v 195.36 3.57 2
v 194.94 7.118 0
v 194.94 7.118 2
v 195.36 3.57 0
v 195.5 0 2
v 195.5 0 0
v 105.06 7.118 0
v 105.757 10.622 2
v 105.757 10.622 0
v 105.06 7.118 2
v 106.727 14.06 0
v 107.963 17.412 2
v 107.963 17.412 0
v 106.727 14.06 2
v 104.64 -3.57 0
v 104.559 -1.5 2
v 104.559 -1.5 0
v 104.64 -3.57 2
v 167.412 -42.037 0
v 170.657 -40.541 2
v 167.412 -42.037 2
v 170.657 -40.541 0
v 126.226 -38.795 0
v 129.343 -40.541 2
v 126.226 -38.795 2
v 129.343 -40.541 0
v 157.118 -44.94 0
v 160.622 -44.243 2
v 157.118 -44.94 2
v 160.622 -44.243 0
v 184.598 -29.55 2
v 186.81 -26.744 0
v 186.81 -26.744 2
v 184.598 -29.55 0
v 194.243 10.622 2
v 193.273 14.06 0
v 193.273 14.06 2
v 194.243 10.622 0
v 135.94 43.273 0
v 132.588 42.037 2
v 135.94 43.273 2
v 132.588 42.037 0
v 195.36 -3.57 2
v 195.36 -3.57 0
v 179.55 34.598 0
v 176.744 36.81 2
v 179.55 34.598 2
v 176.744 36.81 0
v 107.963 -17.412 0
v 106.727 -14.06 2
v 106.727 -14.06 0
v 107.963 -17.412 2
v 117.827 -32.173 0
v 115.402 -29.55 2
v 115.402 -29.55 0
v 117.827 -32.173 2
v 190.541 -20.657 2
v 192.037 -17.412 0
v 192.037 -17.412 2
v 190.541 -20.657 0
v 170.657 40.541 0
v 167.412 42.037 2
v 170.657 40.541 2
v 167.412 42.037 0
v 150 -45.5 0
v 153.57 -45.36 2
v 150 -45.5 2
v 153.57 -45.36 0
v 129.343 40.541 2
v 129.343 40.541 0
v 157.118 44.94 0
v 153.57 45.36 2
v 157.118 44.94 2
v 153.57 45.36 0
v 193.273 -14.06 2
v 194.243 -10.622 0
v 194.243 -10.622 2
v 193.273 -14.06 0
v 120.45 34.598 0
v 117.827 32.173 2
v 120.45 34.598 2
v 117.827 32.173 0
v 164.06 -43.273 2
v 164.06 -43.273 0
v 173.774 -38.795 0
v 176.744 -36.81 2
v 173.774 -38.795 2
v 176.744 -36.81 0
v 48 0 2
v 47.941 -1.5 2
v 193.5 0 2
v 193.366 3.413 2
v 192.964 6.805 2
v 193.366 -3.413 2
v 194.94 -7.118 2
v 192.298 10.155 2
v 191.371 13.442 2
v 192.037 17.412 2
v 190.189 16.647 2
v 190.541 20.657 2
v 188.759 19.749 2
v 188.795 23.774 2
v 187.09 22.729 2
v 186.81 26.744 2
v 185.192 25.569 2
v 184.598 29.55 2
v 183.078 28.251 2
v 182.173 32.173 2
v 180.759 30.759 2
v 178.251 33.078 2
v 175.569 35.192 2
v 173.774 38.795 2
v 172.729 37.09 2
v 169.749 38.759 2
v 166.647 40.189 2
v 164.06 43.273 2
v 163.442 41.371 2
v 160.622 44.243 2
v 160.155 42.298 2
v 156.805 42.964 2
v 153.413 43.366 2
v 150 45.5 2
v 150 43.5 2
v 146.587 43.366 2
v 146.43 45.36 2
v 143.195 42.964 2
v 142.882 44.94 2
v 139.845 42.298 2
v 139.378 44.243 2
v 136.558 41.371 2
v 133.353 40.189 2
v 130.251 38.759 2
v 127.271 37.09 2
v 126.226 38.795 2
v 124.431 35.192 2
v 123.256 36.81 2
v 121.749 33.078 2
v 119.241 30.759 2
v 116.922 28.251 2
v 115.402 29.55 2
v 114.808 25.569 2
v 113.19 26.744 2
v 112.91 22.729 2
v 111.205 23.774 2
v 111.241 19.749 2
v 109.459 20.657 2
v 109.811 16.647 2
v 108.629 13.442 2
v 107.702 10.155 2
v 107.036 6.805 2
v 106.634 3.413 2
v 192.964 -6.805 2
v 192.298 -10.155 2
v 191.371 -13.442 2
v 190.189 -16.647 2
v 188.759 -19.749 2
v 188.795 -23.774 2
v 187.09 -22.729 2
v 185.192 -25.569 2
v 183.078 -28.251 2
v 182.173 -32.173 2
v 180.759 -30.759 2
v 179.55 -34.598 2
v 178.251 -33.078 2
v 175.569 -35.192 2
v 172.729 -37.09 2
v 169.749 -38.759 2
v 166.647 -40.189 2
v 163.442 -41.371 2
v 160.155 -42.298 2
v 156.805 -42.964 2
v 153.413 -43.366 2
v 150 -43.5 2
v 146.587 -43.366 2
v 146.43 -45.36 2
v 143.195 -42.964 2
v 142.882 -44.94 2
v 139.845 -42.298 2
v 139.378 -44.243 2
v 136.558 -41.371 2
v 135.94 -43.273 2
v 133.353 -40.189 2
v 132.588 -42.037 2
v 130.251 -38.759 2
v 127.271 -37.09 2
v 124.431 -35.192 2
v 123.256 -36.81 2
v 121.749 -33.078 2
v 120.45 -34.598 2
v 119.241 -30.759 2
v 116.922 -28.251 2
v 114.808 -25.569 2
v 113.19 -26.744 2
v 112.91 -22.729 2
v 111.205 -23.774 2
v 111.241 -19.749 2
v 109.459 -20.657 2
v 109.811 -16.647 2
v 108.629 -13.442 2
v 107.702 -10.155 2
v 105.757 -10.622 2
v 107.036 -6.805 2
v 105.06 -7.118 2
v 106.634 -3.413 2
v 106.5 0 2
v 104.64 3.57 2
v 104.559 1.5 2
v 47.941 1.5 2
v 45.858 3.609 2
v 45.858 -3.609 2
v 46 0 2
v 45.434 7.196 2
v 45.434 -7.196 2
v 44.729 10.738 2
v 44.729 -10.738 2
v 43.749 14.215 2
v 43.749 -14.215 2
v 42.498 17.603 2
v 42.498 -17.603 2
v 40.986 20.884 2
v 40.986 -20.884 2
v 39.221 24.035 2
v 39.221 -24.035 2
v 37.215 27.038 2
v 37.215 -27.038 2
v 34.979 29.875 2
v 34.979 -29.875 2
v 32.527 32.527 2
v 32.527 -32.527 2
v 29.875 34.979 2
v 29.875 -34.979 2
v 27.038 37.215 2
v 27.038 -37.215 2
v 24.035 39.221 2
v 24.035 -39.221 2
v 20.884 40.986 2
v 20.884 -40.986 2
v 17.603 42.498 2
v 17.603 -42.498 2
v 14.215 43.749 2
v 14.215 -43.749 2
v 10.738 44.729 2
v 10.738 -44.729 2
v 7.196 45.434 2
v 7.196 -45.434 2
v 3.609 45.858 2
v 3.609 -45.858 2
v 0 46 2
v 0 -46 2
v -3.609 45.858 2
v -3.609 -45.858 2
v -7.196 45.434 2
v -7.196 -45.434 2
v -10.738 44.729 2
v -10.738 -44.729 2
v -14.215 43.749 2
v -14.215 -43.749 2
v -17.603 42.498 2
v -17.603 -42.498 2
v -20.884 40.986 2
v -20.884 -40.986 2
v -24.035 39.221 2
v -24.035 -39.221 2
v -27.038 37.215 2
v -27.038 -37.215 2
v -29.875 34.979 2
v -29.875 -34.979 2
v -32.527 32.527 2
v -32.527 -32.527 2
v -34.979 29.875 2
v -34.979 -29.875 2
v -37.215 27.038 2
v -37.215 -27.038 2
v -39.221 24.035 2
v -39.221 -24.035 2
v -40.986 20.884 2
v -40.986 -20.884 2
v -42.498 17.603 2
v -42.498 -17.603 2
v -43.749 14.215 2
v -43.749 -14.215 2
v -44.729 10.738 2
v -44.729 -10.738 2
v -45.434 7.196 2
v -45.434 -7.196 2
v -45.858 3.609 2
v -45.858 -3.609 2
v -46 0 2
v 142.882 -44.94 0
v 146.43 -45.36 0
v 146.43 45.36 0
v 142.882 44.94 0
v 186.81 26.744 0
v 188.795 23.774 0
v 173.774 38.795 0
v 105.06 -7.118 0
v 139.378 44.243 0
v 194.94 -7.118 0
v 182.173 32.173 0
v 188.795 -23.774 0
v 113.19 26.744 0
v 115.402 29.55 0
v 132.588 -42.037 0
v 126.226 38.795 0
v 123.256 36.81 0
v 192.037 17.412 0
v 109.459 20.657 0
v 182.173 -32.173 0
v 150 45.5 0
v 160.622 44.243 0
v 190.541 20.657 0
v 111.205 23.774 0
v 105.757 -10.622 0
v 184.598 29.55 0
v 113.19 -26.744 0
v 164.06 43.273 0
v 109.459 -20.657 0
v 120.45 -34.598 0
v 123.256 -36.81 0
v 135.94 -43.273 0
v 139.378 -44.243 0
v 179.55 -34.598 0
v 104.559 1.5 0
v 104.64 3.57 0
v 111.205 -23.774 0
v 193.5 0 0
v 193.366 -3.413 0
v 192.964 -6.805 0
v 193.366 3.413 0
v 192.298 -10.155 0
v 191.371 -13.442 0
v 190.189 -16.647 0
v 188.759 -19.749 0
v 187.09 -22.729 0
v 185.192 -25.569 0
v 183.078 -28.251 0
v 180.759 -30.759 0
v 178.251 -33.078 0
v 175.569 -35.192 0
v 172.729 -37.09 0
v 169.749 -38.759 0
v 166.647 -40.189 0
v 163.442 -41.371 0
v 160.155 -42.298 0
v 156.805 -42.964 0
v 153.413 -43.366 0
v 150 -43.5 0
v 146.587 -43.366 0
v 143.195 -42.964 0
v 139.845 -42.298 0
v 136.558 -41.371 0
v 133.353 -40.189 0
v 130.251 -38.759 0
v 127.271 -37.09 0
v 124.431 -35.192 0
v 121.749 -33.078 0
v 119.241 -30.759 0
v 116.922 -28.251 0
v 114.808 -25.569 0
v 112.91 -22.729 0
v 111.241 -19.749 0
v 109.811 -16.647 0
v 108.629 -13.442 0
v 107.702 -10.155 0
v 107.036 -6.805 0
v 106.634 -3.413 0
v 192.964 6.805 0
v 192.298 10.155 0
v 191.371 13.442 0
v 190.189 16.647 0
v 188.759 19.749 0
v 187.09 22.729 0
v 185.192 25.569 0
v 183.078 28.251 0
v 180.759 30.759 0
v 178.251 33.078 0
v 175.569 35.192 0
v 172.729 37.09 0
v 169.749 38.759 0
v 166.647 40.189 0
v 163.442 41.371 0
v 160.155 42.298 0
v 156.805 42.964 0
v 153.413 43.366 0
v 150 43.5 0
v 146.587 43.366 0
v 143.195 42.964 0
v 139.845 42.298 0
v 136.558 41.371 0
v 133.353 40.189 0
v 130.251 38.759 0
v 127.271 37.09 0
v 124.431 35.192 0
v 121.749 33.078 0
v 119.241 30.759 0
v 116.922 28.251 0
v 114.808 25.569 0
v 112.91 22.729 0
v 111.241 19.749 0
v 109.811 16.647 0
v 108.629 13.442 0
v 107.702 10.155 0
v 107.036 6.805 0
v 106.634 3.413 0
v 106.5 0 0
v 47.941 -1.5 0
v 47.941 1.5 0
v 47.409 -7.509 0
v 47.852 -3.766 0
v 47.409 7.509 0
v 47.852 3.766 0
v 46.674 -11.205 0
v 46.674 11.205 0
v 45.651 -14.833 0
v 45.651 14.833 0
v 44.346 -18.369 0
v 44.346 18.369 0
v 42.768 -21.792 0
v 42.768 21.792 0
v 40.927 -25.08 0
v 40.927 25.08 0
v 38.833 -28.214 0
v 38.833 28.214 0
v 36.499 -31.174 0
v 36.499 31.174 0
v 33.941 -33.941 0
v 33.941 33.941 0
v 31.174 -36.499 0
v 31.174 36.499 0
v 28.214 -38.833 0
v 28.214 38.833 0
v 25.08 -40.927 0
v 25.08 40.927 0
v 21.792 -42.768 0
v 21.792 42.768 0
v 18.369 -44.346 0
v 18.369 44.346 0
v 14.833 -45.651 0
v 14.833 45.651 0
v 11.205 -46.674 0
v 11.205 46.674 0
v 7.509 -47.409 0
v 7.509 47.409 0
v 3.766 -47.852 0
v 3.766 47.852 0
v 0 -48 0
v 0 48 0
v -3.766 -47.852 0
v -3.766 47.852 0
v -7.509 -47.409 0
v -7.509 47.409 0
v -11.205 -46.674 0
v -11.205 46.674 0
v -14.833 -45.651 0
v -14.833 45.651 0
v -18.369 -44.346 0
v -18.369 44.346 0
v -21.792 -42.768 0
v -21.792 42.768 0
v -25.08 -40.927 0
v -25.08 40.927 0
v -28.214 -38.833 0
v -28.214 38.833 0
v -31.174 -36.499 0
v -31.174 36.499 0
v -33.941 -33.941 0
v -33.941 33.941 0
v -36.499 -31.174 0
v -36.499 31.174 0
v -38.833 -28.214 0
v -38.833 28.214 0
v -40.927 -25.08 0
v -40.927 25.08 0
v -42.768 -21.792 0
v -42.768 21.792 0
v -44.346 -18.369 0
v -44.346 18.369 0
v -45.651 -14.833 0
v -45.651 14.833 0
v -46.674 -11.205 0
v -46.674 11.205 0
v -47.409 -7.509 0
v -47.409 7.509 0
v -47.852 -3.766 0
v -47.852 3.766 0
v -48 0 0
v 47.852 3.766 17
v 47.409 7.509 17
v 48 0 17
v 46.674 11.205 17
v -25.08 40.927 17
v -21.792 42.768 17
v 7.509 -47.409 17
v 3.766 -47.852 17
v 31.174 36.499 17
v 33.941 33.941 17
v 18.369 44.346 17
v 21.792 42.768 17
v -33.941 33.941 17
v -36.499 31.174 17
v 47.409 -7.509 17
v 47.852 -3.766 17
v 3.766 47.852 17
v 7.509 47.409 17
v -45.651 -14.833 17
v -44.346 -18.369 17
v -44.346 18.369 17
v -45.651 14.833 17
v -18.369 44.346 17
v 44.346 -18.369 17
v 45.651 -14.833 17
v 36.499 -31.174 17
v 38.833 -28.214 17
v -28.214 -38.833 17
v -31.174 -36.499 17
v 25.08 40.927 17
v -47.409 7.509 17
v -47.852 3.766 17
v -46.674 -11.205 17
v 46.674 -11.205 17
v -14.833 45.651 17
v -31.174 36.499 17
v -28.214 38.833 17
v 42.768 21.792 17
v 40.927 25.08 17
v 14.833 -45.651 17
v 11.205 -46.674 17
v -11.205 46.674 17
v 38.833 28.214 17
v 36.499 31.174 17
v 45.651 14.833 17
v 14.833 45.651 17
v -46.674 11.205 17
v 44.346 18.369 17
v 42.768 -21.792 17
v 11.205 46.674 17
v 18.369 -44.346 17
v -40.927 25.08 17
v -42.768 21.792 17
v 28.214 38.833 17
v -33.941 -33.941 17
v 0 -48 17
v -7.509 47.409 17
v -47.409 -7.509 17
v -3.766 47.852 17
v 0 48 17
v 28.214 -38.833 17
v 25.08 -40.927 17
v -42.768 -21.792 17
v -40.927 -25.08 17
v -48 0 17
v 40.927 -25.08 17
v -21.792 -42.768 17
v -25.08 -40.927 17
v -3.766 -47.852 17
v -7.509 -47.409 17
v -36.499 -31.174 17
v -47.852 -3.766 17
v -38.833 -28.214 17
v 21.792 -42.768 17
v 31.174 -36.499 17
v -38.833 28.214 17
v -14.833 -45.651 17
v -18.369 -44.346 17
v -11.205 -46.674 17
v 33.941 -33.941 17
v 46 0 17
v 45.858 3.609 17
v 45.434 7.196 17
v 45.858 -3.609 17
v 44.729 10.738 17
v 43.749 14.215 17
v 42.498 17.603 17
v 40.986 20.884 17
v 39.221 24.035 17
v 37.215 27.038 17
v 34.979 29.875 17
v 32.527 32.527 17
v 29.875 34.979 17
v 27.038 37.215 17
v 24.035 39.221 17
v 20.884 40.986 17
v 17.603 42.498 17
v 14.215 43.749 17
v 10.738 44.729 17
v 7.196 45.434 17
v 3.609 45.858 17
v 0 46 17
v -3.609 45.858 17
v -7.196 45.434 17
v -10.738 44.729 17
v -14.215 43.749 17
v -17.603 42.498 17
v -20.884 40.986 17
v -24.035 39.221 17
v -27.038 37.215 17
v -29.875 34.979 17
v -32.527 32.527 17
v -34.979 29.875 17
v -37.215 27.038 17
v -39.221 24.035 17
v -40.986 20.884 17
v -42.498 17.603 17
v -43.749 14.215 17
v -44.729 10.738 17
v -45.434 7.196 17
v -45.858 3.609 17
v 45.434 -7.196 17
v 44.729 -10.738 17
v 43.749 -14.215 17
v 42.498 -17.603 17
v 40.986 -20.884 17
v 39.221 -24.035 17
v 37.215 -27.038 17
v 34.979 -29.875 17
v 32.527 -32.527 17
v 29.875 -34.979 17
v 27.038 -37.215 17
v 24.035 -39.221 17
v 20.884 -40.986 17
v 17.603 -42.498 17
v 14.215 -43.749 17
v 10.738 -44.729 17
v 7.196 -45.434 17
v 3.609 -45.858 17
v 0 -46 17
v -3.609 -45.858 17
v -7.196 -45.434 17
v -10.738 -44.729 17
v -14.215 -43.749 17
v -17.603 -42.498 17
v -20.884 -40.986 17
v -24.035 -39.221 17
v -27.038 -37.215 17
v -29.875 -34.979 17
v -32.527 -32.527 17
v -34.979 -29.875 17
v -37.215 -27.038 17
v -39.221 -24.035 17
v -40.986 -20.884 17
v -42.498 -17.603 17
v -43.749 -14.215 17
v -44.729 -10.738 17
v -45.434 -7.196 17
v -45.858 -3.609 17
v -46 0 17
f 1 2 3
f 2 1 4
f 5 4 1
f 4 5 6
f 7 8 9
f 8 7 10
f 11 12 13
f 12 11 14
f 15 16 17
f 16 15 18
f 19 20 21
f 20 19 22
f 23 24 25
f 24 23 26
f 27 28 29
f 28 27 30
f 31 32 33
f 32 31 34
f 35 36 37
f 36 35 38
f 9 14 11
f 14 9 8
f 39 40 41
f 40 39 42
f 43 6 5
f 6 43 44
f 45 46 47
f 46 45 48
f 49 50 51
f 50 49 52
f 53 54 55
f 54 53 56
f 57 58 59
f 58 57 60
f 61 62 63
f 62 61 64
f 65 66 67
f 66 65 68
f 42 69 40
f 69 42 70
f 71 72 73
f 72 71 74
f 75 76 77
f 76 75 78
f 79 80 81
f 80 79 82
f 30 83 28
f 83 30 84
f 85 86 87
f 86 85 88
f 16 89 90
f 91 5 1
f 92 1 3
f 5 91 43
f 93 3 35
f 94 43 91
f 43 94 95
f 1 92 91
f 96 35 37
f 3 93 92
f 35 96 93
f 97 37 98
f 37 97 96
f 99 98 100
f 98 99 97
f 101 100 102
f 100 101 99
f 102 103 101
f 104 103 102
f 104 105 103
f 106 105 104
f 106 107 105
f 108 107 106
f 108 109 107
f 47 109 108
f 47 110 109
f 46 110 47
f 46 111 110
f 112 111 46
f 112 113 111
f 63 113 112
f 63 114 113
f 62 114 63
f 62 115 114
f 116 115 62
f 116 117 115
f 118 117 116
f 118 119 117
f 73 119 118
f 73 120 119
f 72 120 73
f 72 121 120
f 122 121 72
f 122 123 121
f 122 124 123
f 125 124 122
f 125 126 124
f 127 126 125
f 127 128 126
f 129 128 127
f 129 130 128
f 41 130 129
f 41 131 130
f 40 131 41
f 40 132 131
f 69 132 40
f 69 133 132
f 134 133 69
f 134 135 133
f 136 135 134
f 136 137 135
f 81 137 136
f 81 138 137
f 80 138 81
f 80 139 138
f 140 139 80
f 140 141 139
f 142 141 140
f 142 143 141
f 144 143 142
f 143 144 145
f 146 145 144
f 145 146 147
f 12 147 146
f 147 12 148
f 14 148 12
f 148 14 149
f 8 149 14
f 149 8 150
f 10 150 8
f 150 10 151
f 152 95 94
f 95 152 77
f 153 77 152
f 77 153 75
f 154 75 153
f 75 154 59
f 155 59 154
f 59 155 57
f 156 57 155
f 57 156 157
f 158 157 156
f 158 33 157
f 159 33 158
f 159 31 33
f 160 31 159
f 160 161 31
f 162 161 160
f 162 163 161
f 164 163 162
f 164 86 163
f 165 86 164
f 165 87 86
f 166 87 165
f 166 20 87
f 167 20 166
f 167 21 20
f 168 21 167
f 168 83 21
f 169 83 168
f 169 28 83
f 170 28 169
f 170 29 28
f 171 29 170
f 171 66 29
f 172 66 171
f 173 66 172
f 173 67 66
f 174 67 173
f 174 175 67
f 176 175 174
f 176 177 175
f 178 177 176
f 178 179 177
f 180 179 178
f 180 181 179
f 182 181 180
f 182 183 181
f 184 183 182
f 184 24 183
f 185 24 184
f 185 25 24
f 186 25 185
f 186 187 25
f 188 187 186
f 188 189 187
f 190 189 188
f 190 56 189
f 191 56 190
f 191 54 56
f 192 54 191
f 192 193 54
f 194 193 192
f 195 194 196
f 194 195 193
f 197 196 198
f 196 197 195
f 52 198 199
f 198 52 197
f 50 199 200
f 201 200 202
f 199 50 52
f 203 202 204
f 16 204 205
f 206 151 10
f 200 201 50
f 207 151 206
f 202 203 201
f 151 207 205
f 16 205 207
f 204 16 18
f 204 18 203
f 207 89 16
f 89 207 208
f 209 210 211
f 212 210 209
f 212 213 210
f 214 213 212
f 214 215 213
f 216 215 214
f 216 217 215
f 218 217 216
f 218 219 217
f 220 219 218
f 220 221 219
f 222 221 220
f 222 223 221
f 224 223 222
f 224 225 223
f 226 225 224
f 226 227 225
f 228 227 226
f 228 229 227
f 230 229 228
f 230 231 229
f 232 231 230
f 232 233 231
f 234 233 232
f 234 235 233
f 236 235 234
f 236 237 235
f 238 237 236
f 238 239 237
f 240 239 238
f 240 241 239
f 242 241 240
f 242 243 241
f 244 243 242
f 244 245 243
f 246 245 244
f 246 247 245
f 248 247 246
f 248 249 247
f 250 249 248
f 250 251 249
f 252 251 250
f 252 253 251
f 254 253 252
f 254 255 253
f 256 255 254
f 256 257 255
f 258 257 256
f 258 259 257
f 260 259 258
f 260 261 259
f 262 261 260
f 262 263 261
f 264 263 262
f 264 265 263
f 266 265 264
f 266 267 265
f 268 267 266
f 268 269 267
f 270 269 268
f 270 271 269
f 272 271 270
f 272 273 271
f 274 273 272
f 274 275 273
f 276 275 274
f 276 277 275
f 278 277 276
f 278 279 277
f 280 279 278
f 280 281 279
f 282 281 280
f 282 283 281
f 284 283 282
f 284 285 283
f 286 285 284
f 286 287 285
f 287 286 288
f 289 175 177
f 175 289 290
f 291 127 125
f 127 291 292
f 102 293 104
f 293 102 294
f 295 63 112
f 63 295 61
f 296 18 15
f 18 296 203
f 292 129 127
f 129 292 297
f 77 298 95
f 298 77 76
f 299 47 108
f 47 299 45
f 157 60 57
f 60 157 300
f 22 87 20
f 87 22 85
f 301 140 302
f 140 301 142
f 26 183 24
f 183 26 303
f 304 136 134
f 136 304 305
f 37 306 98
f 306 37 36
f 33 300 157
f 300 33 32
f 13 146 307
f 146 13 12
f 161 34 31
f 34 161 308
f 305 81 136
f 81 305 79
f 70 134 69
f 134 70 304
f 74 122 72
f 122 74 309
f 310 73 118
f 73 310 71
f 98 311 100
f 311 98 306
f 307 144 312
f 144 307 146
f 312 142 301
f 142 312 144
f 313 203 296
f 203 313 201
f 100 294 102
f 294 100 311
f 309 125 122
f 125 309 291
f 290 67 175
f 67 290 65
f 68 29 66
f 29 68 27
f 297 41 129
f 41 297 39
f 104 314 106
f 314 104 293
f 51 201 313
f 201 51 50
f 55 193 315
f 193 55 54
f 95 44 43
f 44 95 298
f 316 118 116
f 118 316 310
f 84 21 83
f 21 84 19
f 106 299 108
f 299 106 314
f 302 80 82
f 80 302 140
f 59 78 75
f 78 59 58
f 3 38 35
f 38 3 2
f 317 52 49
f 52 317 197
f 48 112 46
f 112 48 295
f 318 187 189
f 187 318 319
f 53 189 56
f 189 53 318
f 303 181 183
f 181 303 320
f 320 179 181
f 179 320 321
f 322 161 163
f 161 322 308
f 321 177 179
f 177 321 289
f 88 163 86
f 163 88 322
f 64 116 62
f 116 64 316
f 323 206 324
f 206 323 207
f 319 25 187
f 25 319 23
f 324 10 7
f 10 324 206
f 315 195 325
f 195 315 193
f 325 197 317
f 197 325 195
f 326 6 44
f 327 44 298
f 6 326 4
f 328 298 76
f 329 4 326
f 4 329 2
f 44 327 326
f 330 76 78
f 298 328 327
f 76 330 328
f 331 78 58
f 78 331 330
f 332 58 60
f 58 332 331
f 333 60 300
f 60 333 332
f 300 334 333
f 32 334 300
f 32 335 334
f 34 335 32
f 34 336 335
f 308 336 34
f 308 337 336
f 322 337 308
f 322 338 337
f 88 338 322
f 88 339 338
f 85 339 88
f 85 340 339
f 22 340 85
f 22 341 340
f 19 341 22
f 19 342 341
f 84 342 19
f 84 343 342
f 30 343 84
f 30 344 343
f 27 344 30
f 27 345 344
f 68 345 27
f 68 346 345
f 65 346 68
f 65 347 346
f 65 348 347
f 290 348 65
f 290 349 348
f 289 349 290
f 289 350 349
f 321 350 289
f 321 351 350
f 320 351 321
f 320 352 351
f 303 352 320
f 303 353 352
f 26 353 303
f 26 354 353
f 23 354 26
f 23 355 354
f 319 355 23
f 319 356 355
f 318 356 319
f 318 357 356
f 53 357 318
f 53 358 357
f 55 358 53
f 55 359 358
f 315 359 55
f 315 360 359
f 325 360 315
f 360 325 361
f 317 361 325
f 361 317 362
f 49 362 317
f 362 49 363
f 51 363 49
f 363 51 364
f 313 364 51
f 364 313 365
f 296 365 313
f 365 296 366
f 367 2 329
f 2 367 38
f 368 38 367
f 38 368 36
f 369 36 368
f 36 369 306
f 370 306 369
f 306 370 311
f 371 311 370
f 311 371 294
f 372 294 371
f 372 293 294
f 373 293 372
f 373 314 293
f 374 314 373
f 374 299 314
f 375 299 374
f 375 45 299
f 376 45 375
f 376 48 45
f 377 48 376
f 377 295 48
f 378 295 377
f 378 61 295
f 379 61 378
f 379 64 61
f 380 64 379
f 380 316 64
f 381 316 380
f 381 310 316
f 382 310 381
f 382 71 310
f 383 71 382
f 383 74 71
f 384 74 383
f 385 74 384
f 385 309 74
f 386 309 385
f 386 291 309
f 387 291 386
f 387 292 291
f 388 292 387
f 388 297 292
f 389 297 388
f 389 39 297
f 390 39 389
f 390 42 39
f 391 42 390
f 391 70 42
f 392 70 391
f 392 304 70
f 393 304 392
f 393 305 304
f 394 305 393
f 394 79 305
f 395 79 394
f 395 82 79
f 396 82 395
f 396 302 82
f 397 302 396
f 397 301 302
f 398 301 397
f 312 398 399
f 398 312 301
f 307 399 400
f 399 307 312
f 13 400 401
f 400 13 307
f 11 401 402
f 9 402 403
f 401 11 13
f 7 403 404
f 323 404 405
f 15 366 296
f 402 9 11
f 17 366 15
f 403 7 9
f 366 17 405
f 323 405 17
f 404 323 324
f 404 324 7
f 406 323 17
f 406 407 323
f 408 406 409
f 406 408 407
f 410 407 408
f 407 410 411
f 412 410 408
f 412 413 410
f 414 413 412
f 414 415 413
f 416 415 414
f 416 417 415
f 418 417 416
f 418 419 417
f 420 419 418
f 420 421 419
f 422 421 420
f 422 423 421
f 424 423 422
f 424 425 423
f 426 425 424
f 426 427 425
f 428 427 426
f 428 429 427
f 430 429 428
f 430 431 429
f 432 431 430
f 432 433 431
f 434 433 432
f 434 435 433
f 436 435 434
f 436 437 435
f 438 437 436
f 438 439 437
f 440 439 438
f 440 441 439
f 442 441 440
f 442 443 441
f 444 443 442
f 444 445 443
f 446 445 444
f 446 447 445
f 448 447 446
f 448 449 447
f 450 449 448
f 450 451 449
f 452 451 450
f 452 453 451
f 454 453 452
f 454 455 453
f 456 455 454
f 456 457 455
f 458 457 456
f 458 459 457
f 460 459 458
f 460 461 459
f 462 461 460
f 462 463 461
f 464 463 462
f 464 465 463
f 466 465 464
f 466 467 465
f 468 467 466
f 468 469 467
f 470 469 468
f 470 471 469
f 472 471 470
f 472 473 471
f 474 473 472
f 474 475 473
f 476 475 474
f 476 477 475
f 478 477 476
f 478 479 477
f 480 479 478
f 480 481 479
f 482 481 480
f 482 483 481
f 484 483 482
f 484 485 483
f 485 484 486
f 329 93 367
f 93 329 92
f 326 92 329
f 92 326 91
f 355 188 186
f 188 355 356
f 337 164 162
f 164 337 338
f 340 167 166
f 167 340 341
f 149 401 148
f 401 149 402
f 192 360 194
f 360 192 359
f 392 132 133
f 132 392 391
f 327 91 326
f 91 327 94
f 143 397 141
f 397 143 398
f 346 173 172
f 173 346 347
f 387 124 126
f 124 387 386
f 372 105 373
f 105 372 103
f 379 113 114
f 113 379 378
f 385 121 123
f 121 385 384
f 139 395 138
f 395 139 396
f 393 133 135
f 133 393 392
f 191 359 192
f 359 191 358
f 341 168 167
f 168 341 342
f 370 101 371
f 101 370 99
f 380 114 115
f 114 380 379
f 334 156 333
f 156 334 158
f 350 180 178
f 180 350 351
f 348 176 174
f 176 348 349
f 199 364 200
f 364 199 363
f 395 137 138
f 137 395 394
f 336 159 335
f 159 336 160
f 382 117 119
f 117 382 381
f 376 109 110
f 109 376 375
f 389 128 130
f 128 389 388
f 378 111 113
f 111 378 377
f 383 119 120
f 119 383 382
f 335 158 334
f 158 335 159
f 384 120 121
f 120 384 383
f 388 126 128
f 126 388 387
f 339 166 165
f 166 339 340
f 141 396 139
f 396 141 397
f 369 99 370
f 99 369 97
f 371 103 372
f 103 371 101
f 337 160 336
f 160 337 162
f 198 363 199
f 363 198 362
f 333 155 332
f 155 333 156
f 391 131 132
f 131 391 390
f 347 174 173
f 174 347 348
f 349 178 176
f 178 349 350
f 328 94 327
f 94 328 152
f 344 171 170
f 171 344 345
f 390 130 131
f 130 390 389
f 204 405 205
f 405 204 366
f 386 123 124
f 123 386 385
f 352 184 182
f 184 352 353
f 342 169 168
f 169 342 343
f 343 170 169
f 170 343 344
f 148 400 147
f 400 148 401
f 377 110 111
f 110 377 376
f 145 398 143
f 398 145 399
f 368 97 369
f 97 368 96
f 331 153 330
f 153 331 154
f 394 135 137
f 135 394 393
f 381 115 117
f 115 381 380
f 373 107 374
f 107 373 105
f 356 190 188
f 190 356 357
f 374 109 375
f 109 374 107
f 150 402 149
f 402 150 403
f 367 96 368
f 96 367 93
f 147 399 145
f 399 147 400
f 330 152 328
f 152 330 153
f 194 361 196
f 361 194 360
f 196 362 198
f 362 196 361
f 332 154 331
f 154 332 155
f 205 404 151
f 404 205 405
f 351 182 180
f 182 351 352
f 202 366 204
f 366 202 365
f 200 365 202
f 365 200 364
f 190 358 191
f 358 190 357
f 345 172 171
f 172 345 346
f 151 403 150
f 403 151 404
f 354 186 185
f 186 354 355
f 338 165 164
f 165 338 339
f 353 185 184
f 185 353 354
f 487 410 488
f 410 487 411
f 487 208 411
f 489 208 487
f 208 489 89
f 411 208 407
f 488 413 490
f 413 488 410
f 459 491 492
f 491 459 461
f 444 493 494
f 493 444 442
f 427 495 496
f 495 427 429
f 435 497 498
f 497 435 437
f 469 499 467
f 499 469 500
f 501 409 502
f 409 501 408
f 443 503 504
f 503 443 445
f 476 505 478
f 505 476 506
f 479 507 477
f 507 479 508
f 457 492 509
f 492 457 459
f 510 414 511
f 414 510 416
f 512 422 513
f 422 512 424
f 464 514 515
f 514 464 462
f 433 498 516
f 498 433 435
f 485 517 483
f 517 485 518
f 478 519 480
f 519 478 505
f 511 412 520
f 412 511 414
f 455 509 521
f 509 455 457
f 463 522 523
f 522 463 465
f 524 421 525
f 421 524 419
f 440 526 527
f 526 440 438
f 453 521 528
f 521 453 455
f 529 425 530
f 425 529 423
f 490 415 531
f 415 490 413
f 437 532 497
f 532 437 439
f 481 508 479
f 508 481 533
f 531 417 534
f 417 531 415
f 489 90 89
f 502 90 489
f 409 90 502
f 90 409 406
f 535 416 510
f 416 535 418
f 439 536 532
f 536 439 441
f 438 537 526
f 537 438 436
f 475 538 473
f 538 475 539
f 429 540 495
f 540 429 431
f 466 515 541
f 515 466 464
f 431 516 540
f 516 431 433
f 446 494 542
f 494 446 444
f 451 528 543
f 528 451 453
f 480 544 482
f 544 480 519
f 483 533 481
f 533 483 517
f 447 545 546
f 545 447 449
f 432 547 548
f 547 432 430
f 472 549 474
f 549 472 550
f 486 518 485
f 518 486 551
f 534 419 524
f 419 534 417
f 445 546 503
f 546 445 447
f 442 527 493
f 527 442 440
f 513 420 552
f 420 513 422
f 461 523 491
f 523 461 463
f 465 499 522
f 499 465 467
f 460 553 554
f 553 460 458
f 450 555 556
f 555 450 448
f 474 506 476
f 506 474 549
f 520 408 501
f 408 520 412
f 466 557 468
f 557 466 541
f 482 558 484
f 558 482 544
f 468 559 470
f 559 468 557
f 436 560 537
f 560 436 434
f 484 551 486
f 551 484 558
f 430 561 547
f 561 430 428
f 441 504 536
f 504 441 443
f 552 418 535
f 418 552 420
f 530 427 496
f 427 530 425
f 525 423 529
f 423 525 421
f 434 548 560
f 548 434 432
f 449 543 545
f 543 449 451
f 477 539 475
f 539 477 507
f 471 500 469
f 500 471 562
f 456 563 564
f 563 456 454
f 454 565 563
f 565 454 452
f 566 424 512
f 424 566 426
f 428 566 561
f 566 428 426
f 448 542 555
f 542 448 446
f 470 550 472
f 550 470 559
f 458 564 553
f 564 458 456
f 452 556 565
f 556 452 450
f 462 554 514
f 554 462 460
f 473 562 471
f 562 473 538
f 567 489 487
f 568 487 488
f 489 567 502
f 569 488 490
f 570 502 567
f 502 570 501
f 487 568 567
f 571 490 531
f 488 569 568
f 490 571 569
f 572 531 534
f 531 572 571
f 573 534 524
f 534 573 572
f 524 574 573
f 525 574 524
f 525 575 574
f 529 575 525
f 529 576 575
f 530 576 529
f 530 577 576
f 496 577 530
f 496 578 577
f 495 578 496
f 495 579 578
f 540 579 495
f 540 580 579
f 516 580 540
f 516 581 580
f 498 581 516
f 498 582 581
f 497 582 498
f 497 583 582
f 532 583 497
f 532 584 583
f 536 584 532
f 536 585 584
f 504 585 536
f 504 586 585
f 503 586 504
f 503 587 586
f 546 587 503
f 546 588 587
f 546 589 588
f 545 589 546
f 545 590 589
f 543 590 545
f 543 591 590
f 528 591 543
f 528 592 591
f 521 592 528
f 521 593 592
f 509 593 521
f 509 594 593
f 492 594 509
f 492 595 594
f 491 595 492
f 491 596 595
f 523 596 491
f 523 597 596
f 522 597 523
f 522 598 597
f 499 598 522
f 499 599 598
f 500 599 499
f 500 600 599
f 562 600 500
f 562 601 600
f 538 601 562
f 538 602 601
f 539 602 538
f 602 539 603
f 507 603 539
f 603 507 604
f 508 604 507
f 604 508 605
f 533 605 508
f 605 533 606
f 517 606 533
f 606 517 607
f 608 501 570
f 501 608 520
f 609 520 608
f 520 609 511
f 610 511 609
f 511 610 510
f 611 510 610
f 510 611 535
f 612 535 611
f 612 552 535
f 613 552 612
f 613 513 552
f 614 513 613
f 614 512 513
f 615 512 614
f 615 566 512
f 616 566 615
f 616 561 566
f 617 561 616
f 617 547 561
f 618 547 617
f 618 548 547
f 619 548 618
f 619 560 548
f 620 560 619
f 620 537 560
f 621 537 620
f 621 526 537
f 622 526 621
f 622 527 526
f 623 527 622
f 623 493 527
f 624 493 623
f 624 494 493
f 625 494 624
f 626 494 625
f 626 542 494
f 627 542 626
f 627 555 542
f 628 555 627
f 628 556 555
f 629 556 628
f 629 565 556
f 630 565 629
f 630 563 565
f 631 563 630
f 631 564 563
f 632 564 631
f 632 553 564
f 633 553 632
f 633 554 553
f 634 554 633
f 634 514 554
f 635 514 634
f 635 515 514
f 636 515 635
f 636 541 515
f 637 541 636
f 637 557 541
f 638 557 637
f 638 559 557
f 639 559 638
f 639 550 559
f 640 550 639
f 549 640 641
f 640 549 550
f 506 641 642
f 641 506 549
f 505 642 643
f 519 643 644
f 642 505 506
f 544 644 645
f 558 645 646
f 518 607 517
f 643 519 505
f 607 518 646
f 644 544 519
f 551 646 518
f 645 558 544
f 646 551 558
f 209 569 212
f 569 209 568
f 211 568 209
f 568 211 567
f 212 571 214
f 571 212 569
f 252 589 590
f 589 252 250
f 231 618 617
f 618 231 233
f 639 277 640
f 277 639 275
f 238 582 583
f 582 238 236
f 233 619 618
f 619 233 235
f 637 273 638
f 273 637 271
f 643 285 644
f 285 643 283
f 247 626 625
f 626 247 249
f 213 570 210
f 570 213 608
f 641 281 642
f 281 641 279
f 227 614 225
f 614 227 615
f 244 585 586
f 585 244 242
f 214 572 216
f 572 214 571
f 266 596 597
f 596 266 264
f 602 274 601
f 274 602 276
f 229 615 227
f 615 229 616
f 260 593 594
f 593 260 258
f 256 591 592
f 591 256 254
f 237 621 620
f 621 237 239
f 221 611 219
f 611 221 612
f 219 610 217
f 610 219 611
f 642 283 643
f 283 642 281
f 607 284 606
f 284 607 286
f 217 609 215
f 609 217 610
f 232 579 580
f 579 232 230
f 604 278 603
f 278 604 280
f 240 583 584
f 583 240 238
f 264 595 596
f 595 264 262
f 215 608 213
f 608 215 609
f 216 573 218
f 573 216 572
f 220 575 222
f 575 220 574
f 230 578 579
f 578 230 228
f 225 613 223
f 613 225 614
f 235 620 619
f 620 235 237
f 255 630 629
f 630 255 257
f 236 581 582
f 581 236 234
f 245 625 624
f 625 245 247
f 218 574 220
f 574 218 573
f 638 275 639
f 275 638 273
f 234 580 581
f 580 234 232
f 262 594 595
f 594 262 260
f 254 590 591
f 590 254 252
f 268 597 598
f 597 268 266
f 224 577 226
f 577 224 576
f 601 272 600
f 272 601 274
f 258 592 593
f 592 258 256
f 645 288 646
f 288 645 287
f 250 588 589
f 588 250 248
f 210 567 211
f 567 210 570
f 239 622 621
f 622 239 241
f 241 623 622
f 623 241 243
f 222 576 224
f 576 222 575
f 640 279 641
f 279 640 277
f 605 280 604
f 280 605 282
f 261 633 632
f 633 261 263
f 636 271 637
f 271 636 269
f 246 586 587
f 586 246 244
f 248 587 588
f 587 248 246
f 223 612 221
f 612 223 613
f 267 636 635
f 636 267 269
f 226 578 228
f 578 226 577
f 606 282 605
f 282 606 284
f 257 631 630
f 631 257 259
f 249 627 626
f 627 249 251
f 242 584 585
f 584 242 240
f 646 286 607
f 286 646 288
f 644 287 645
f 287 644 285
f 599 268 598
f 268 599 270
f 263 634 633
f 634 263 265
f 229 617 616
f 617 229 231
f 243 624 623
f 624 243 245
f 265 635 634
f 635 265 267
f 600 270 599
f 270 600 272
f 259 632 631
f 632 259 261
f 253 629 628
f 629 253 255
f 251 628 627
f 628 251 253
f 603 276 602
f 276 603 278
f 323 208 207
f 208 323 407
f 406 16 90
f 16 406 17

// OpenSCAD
border              = 2.0;
coverInnerDiameter  = 92.0;
coverOuterDiameter  = coverInnerDiameter + border * 2;
coverHeight         = 15.0;

ringInnerDiameter   = 87.0;
ringOuterDiameter   = ringInnerDiameter + border * 2;
ringHeight          = 2.0;

coverRingDistance   = 150;
coverRingWidth      = 3.0;


manifoldCorrection  = 0.01;
manifoldCorrection2 = manifoldCorrection * 2;
$fn                 = 80;



cover();



module cover()
{
    // Cover
    cylinder(d = coverOuterDiameter, h = border);
    translate( [0, 0, border] )
        donut(coverOuterDiameter, coverInnerDiameter, coverHeight);
        
    // Ring
    translate( [coverRingDistance, 0, 0] )
        donut(ringOuterDiameter, ringInnerDiameter, ringHeight);
        
    // Joiner
    translate( [coverOuterDiameter/2 - 0.2, -coverRingWidth/2, 0] )
        cube( [coverRingDistance - (coverOuterDiameter/2 + ringOuterDiameter/2) + 1.0, coverRingWidth, ringHeight] );
}





module donut(outerDiameter, innerDiameter, height)
{
    difference()
    {
        cylinder(d = outerDiameter, h = height);
        translate( [0, 0, -manifoldCorrection] )
            cylinder(d = innerDiameter, h = height + manifoldCorrection2);
    }
}
